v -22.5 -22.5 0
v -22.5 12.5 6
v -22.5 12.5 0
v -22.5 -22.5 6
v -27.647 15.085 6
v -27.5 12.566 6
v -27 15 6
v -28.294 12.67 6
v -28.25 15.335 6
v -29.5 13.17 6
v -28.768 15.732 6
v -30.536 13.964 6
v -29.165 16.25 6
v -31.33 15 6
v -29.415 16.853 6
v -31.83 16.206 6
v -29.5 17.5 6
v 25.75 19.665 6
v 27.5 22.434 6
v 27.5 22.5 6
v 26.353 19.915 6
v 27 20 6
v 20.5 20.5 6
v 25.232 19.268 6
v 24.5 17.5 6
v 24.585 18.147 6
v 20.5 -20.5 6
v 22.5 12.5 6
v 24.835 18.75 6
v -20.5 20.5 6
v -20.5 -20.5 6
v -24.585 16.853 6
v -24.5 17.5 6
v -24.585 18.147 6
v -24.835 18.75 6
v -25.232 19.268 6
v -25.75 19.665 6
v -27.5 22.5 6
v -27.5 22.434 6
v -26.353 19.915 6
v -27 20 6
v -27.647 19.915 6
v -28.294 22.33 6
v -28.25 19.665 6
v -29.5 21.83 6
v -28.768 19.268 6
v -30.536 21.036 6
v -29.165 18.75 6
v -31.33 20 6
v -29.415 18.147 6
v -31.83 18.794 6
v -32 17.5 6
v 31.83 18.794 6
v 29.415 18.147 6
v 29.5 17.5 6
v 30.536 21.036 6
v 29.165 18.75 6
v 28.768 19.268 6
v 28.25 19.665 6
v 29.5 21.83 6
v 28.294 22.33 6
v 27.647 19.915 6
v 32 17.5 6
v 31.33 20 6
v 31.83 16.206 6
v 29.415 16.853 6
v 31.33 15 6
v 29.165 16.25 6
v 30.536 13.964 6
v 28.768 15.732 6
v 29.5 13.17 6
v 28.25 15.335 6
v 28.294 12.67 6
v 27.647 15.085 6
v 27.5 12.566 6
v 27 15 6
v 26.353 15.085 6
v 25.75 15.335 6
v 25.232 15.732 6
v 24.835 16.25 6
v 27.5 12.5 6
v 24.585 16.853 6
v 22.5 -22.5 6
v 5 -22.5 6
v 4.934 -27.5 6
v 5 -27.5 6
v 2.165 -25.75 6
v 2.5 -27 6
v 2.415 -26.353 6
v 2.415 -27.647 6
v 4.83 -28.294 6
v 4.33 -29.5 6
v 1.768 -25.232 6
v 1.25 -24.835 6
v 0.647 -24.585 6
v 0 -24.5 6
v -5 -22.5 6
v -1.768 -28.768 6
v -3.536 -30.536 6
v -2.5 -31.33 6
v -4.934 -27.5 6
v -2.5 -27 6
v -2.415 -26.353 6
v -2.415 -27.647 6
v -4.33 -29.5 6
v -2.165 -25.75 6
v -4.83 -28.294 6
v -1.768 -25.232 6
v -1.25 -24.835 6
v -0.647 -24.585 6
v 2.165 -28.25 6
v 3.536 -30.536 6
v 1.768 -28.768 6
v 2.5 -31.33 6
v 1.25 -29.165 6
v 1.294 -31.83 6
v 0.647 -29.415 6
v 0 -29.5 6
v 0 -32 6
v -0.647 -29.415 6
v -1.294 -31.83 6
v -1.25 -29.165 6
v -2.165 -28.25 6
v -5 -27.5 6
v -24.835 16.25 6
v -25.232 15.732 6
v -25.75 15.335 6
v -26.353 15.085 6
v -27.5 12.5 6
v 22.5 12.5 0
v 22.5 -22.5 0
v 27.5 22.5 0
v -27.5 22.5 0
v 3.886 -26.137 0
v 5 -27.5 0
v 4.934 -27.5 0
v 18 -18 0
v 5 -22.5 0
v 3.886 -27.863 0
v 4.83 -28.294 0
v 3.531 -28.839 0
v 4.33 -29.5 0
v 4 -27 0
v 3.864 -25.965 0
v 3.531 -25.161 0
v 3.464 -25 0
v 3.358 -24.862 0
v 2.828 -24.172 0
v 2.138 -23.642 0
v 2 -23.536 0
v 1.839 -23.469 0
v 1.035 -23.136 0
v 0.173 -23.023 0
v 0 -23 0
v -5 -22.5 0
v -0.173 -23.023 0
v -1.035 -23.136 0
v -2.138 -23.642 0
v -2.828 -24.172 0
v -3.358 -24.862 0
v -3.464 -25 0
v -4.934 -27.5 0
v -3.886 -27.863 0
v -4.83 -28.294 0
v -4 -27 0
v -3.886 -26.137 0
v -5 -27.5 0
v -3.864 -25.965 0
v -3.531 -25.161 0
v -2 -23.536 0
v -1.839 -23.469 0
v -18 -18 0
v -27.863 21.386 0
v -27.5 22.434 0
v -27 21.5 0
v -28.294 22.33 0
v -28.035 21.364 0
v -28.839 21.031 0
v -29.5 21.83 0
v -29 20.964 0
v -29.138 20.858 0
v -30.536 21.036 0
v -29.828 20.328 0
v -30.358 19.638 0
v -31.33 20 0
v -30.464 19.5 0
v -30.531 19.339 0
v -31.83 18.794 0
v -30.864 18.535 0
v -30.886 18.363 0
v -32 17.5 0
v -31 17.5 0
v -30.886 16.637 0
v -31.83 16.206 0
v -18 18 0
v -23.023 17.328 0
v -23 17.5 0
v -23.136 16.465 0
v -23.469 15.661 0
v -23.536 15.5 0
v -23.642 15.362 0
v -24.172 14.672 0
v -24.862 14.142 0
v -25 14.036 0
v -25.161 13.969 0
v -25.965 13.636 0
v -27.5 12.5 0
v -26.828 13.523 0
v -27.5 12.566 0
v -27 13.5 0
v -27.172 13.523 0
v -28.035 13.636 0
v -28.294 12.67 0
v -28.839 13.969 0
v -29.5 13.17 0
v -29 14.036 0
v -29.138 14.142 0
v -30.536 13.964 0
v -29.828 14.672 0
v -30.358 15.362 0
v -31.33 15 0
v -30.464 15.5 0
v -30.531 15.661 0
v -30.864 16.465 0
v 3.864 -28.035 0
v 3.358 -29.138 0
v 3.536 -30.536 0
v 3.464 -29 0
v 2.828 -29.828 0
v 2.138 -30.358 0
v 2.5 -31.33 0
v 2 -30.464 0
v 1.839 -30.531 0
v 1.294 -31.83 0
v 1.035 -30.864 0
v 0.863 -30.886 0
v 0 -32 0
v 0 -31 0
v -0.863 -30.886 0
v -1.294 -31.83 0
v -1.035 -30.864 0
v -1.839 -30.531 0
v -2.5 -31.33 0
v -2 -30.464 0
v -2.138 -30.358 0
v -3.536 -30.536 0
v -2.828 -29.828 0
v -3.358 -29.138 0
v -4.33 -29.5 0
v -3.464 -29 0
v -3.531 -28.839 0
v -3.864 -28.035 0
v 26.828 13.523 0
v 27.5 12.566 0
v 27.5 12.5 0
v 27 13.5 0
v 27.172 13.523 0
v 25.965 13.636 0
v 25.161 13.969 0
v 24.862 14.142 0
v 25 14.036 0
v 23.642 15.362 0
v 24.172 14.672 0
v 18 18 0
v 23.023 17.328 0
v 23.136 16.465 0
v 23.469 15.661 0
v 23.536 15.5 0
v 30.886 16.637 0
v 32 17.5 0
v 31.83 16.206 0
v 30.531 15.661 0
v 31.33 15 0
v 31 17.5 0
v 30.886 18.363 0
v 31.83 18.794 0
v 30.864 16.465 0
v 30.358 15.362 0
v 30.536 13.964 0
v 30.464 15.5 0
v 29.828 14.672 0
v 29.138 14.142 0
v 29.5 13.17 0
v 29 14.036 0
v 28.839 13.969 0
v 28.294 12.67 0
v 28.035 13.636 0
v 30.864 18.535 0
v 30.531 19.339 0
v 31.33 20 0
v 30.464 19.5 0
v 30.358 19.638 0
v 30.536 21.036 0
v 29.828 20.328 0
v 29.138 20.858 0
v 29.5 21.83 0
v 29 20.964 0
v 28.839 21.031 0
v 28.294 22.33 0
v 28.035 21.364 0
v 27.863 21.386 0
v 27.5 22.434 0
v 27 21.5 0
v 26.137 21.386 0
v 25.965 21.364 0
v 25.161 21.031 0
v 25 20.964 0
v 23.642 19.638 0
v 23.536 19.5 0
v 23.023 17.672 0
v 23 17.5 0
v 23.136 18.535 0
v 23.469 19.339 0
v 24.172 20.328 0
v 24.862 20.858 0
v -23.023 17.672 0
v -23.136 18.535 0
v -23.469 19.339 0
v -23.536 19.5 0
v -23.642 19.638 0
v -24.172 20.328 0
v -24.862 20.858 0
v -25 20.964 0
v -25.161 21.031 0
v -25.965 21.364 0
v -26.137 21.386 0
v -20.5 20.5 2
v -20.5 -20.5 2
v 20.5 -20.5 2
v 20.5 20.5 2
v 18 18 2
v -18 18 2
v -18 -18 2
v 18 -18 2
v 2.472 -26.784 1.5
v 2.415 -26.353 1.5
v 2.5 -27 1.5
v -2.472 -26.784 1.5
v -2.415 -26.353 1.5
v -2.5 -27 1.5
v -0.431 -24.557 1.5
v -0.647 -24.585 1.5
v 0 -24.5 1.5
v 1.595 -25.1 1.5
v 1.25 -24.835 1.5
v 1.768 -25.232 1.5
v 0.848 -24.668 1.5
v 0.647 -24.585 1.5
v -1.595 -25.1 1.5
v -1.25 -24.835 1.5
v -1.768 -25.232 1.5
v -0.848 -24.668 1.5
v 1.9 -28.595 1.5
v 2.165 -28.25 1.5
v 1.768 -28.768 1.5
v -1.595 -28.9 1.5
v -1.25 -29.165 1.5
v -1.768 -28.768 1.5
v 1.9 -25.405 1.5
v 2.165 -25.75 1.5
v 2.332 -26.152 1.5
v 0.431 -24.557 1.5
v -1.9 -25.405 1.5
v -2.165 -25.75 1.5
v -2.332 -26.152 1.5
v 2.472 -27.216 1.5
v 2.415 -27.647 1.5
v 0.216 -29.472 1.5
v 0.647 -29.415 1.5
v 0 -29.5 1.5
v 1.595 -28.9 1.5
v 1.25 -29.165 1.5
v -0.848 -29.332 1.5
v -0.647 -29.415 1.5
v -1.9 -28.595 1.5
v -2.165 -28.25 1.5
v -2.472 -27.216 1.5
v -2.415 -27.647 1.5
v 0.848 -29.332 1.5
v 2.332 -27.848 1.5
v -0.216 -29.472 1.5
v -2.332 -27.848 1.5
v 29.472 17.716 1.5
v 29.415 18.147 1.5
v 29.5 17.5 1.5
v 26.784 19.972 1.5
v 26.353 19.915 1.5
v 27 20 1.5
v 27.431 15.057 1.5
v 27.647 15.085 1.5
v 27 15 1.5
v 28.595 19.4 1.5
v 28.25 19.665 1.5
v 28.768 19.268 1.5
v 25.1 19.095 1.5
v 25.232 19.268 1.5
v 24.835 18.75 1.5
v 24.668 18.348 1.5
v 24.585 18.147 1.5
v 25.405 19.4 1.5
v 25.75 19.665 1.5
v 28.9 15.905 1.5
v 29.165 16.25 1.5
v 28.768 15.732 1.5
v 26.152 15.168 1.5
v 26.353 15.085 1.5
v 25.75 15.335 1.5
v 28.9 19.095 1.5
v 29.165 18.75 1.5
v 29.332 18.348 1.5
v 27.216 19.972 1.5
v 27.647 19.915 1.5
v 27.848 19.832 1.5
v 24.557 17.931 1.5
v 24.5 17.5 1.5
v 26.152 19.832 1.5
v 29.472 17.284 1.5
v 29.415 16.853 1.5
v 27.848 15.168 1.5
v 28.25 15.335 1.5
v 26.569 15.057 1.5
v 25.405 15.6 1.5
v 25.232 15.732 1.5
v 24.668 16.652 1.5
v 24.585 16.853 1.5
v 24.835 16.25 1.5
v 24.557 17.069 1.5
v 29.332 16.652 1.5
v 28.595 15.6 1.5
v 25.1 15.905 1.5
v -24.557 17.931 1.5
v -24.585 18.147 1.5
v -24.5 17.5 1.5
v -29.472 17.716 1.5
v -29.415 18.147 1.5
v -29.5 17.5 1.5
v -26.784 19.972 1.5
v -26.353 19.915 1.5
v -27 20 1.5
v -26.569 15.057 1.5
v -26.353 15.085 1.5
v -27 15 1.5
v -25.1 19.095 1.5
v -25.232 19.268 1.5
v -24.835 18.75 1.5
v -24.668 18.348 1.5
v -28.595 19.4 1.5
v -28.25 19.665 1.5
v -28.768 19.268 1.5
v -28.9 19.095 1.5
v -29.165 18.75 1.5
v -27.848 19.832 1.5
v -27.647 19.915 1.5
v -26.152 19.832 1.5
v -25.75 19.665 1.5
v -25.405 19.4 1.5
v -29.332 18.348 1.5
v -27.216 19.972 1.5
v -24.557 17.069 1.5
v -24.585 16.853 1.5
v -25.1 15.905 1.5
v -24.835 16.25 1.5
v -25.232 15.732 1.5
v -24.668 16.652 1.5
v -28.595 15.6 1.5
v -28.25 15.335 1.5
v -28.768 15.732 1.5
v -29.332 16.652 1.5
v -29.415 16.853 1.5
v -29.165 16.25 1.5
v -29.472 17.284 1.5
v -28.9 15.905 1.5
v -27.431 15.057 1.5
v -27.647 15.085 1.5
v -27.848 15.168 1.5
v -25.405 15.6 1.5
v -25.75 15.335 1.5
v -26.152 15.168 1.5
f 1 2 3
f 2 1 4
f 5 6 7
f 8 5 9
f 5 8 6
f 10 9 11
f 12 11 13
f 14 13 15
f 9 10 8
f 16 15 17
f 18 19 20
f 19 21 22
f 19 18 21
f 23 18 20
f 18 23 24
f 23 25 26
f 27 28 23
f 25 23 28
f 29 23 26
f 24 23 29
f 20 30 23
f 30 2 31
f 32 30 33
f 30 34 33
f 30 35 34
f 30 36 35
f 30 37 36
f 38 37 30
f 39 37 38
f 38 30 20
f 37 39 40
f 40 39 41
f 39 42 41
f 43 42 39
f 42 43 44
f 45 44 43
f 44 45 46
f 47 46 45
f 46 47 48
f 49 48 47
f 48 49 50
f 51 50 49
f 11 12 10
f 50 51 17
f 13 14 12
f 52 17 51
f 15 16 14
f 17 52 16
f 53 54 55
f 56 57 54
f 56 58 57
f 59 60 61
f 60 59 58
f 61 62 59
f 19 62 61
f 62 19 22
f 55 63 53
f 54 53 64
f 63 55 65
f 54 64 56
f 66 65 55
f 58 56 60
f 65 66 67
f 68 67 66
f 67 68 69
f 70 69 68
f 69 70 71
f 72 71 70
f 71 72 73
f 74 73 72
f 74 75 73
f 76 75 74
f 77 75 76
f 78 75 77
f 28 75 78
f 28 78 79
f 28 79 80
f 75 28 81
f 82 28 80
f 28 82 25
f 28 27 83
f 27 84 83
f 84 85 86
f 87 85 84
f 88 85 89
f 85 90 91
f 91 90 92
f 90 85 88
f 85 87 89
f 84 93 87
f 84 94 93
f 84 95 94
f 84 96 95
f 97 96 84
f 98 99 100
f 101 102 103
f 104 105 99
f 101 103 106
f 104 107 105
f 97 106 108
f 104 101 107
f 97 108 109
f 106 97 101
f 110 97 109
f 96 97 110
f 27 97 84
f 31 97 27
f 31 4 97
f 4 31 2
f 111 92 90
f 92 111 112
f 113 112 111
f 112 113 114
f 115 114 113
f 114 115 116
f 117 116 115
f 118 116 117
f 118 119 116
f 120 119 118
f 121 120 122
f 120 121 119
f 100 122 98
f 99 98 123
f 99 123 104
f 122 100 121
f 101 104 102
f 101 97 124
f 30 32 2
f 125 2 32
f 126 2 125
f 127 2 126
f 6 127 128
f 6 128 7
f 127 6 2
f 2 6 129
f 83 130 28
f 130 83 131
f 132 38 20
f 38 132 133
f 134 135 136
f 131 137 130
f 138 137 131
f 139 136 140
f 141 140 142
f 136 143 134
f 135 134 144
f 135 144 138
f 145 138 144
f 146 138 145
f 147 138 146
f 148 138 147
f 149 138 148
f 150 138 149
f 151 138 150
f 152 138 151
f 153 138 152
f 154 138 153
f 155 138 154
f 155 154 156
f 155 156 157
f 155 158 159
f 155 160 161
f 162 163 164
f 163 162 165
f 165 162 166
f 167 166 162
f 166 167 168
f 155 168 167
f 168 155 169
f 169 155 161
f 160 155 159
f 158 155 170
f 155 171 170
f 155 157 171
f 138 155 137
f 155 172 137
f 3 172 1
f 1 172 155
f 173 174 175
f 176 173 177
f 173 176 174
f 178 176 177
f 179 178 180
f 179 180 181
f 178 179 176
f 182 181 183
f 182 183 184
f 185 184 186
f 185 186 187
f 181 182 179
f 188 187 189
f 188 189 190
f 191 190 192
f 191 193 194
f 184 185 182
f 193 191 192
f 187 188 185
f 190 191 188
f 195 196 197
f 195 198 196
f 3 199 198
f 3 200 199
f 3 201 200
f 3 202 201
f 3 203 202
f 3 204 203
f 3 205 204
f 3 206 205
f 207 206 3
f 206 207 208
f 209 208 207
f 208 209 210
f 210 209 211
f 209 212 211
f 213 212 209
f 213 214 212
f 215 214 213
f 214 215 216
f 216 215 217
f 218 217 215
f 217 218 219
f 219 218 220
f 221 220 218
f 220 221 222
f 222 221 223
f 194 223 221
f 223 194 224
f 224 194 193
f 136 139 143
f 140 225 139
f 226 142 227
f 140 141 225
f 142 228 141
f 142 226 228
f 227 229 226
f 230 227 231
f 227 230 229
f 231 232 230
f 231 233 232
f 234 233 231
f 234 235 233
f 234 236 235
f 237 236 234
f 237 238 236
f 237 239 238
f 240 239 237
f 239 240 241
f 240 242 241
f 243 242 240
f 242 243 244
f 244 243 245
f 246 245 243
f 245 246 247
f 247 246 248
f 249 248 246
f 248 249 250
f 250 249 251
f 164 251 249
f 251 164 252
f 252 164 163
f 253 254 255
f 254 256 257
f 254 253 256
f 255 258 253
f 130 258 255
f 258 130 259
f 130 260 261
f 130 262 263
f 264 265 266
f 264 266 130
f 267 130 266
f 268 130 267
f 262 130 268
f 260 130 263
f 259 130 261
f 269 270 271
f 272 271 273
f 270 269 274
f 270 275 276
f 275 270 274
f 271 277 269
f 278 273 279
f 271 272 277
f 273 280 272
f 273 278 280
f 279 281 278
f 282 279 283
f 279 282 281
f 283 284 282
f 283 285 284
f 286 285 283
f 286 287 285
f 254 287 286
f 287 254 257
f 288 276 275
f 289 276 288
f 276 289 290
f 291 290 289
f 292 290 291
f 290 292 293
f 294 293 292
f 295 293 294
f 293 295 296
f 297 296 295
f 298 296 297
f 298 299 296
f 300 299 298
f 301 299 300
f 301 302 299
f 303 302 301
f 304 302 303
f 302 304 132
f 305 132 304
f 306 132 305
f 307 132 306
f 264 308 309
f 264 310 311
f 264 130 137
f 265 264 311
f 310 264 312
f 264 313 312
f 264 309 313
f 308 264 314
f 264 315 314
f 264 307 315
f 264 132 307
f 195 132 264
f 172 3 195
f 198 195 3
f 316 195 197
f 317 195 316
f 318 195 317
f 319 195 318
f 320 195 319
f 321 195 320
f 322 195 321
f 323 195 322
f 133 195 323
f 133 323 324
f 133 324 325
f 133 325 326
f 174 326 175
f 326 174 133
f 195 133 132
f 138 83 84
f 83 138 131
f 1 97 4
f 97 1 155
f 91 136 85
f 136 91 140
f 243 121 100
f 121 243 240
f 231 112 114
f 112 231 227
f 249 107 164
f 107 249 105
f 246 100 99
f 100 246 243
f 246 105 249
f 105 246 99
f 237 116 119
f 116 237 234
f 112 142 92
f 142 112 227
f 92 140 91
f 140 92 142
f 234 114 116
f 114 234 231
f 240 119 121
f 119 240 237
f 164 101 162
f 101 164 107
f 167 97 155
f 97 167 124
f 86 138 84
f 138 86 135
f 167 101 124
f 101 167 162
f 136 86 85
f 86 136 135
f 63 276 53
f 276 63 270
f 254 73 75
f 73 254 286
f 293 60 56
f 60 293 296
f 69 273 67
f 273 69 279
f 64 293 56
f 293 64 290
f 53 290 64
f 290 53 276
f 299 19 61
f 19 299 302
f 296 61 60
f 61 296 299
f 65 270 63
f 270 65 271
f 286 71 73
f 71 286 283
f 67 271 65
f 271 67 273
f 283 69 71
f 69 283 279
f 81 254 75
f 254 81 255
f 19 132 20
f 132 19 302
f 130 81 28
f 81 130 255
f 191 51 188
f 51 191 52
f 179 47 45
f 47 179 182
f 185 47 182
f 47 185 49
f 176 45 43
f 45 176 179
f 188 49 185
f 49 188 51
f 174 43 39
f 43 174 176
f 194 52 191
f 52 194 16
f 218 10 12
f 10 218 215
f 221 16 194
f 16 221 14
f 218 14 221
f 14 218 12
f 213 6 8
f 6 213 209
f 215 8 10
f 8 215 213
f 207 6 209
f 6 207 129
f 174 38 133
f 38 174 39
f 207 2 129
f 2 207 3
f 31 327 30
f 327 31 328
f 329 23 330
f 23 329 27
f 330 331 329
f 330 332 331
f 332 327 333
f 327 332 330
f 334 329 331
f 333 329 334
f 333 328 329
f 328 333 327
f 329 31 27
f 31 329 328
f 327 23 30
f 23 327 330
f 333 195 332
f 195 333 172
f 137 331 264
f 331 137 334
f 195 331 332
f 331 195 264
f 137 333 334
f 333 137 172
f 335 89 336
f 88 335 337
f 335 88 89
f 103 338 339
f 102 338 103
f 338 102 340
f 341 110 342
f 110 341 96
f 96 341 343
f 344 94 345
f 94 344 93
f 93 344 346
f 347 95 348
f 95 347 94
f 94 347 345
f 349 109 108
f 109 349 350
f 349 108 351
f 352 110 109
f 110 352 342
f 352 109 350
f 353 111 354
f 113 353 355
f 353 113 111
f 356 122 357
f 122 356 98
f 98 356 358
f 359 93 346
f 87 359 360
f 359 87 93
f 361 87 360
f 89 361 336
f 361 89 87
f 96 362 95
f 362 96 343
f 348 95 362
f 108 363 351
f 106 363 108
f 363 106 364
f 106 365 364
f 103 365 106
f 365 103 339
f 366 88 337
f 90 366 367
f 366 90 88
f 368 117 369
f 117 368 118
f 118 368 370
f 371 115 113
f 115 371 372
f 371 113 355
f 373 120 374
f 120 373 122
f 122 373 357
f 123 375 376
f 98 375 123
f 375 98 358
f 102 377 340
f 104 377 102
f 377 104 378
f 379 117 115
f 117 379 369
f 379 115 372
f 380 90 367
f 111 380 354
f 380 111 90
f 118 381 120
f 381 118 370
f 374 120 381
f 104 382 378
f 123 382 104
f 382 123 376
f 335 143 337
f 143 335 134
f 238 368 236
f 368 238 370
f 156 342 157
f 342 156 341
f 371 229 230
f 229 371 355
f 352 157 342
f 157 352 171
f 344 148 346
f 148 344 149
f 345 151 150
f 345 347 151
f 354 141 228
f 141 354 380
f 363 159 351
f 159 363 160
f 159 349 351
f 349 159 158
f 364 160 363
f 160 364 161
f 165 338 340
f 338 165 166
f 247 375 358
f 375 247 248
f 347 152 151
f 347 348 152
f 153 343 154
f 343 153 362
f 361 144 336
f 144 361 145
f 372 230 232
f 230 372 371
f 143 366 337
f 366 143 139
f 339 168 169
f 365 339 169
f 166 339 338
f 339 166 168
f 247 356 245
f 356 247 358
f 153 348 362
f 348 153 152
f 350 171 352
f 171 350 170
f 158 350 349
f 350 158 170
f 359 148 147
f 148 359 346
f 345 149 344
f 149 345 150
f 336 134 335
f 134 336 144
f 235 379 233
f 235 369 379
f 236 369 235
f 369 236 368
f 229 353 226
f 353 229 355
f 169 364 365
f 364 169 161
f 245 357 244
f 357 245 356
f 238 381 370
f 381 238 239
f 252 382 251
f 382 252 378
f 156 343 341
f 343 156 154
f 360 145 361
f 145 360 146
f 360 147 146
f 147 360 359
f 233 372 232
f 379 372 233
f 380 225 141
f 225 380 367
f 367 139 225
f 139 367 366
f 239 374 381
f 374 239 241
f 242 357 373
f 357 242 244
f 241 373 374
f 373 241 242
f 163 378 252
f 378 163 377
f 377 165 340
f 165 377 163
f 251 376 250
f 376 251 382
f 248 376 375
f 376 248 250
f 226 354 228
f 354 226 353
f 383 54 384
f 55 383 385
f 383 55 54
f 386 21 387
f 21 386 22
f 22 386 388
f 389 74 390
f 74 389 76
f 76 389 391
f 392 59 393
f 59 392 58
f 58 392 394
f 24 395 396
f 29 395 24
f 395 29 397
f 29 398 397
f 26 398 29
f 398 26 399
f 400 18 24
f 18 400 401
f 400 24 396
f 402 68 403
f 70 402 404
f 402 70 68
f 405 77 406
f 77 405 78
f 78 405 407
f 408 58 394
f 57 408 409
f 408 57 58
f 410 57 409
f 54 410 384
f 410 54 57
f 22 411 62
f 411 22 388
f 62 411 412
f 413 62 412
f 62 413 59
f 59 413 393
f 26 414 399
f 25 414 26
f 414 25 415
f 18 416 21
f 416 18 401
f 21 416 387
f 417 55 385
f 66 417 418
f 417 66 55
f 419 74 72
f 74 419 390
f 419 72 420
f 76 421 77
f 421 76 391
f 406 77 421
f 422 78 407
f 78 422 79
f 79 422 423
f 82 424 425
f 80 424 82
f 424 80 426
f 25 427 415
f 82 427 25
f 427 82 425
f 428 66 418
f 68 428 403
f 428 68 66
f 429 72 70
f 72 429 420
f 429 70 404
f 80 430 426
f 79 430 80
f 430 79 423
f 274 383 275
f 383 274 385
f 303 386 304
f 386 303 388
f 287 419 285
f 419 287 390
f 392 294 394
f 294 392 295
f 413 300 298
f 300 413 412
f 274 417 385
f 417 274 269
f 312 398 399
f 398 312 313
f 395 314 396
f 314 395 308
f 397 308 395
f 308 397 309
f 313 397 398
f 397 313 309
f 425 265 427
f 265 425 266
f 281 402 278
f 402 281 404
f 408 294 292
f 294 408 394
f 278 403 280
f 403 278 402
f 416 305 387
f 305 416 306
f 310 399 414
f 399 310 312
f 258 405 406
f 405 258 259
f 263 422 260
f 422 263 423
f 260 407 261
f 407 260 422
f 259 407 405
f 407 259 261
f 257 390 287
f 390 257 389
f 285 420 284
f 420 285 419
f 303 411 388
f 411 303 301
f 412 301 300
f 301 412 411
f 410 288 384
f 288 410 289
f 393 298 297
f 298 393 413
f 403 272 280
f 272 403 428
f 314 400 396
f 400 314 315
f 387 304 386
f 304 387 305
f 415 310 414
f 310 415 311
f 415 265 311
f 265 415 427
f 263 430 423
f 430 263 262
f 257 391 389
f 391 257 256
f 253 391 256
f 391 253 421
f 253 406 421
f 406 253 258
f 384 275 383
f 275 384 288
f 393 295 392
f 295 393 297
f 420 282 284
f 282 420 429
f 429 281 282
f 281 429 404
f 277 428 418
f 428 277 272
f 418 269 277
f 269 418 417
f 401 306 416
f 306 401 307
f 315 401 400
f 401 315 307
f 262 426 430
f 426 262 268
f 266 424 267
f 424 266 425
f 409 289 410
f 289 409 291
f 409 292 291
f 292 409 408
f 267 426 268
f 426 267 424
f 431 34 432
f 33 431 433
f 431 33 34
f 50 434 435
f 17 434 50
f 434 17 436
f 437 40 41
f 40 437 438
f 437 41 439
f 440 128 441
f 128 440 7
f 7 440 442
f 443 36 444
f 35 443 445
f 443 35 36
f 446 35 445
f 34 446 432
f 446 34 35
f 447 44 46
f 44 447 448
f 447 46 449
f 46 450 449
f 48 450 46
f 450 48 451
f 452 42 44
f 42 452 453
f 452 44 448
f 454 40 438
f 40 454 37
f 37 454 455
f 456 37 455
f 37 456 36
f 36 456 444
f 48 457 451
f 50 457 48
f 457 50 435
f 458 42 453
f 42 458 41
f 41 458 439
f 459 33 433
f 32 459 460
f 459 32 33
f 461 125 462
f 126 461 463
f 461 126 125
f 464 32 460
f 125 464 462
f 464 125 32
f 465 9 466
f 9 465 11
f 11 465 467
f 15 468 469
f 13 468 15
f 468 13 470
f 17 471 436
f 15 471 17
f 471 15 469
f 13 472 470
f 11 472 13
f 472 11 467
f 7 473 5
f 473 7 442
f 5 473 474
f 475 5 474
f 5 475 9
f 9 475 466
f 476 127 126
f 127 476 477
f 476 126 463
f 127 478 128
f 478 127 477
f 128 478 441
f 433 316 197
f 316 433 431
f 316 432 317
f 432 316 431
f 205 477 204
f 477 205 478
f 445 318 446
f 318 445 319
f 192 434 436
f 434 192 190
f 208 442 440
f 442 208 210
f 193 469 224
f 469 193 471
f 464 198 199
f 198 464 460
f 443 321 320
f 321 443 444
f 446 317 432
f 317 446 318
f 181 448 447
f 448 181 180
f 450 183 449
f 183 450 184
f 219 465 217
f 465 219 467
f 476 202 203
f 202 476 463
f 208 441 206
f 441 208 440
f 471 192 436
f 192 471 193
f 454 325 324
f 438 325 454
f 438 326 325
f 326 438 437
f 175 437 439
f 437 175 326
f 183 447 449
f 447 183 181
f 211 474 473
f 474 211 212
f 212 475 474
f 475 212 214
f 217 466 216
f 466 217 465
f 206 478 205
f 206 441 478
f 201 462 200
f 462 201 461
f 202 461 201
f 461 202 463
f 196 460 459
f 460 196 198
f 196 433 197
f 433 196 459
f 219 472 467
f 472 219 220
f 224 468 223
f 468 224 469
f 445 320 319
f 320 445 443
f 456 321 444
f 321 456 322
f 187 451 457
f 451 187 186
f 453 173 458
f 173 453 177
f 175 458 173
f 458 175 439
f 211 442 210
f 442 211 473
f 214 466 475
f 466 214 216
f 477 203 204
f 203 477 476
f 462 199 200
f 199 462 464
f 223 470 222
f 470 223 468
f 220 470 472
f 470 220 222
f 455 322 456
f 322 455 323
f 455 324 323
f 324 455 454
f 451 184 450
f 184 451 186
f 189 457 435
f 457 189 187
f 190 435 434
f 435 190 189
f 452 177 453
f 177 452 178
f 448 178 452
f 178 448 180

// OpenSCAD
//###############################################################################
//#                                                                             #
//###############################################################################
//#    Copyright 2020 Dirk Heisswolf                                            #
//#    This file is part of the DIY Laser Bed project.                          #
//#                                                                             #
//#    This project is free software: you can redistribute it and/or modify     #
//#    it under the terms of the GNU General Public License as published by     #
//#    the Free Software Foundation, either version 3 of the License, or        #
//#    (at your option) any later version.                                      #
//#                                                                             #
//#    This project is distributed in the hope that it will be useful,          #
//#    but WITHOUT ANY WARRANTY; without even the implied warranty of           #
//#    MERCHANTABILITY or FITNESS FOR A PARTICULAR PURPOSE.  See the            #
//#    GNU General Public License for more details.                             #
//#                                                                             #
//#    You should have received a copy of the GNU General Public License        #
//#    along with this project.  If not, see <http://www.gnu.org/licenses/>.    #
//#                                                                             #
//###############################################################################
//# Description:                                                                #
//#   A bracket to secure a square water flow ibdicator.                        #
//#                                                                             #
//###############################################################################
//# Version History:                                                            #
//#   February 27, 2020                                                         #
//#      - Initial release                                                      #
//#                                                                             #
//###############################################################################
//Parameters
$d_cable     =  8;                  //diameter of the cable
$fn          = 24;

module flowind_bracket() {
    //Body
    difference() {
        union() {
          translate([0,0,3])      cube([45,45,6],true); 

          translate([0,-27,0])    cylinder(6,d=10);
          translate([0,-25,3])    cube([10,5,6],true); 
            
          translate([27,17.5,0])  cylinder(6,d=10); 
          translate([25,17.5,3])  cube([5,10,6],true); 

          translate([-27,17.5,0]) cylinder(6,d=10);             
          translate([-25,17.5,3]) cube([5,10,6],true); 
        }
        union() {
          translate([0,0,7])       cube([41,41,10],true); 
          translate([0,0,0])       cube([36,36,20],true); 

          translate([0,-27,-1])    cylinder(8,d=5);
          translate([0,-27,-1])    cylinder(3,d1=10,d2=4);

          translate([27,17.5,-1])  cylinder(8,d=5); 
          translate([27,17.5,-1])  cylinder(3,d1=10,d2=4);

          translate([-27,17.5,-1]) cylinder(8,d=5);             
          translate([-27,17.5,-1]) cylinder(3,d1=10,d2=4);
        }
    }
}

//if ($preview) {

   flowind_bracket();
//}
